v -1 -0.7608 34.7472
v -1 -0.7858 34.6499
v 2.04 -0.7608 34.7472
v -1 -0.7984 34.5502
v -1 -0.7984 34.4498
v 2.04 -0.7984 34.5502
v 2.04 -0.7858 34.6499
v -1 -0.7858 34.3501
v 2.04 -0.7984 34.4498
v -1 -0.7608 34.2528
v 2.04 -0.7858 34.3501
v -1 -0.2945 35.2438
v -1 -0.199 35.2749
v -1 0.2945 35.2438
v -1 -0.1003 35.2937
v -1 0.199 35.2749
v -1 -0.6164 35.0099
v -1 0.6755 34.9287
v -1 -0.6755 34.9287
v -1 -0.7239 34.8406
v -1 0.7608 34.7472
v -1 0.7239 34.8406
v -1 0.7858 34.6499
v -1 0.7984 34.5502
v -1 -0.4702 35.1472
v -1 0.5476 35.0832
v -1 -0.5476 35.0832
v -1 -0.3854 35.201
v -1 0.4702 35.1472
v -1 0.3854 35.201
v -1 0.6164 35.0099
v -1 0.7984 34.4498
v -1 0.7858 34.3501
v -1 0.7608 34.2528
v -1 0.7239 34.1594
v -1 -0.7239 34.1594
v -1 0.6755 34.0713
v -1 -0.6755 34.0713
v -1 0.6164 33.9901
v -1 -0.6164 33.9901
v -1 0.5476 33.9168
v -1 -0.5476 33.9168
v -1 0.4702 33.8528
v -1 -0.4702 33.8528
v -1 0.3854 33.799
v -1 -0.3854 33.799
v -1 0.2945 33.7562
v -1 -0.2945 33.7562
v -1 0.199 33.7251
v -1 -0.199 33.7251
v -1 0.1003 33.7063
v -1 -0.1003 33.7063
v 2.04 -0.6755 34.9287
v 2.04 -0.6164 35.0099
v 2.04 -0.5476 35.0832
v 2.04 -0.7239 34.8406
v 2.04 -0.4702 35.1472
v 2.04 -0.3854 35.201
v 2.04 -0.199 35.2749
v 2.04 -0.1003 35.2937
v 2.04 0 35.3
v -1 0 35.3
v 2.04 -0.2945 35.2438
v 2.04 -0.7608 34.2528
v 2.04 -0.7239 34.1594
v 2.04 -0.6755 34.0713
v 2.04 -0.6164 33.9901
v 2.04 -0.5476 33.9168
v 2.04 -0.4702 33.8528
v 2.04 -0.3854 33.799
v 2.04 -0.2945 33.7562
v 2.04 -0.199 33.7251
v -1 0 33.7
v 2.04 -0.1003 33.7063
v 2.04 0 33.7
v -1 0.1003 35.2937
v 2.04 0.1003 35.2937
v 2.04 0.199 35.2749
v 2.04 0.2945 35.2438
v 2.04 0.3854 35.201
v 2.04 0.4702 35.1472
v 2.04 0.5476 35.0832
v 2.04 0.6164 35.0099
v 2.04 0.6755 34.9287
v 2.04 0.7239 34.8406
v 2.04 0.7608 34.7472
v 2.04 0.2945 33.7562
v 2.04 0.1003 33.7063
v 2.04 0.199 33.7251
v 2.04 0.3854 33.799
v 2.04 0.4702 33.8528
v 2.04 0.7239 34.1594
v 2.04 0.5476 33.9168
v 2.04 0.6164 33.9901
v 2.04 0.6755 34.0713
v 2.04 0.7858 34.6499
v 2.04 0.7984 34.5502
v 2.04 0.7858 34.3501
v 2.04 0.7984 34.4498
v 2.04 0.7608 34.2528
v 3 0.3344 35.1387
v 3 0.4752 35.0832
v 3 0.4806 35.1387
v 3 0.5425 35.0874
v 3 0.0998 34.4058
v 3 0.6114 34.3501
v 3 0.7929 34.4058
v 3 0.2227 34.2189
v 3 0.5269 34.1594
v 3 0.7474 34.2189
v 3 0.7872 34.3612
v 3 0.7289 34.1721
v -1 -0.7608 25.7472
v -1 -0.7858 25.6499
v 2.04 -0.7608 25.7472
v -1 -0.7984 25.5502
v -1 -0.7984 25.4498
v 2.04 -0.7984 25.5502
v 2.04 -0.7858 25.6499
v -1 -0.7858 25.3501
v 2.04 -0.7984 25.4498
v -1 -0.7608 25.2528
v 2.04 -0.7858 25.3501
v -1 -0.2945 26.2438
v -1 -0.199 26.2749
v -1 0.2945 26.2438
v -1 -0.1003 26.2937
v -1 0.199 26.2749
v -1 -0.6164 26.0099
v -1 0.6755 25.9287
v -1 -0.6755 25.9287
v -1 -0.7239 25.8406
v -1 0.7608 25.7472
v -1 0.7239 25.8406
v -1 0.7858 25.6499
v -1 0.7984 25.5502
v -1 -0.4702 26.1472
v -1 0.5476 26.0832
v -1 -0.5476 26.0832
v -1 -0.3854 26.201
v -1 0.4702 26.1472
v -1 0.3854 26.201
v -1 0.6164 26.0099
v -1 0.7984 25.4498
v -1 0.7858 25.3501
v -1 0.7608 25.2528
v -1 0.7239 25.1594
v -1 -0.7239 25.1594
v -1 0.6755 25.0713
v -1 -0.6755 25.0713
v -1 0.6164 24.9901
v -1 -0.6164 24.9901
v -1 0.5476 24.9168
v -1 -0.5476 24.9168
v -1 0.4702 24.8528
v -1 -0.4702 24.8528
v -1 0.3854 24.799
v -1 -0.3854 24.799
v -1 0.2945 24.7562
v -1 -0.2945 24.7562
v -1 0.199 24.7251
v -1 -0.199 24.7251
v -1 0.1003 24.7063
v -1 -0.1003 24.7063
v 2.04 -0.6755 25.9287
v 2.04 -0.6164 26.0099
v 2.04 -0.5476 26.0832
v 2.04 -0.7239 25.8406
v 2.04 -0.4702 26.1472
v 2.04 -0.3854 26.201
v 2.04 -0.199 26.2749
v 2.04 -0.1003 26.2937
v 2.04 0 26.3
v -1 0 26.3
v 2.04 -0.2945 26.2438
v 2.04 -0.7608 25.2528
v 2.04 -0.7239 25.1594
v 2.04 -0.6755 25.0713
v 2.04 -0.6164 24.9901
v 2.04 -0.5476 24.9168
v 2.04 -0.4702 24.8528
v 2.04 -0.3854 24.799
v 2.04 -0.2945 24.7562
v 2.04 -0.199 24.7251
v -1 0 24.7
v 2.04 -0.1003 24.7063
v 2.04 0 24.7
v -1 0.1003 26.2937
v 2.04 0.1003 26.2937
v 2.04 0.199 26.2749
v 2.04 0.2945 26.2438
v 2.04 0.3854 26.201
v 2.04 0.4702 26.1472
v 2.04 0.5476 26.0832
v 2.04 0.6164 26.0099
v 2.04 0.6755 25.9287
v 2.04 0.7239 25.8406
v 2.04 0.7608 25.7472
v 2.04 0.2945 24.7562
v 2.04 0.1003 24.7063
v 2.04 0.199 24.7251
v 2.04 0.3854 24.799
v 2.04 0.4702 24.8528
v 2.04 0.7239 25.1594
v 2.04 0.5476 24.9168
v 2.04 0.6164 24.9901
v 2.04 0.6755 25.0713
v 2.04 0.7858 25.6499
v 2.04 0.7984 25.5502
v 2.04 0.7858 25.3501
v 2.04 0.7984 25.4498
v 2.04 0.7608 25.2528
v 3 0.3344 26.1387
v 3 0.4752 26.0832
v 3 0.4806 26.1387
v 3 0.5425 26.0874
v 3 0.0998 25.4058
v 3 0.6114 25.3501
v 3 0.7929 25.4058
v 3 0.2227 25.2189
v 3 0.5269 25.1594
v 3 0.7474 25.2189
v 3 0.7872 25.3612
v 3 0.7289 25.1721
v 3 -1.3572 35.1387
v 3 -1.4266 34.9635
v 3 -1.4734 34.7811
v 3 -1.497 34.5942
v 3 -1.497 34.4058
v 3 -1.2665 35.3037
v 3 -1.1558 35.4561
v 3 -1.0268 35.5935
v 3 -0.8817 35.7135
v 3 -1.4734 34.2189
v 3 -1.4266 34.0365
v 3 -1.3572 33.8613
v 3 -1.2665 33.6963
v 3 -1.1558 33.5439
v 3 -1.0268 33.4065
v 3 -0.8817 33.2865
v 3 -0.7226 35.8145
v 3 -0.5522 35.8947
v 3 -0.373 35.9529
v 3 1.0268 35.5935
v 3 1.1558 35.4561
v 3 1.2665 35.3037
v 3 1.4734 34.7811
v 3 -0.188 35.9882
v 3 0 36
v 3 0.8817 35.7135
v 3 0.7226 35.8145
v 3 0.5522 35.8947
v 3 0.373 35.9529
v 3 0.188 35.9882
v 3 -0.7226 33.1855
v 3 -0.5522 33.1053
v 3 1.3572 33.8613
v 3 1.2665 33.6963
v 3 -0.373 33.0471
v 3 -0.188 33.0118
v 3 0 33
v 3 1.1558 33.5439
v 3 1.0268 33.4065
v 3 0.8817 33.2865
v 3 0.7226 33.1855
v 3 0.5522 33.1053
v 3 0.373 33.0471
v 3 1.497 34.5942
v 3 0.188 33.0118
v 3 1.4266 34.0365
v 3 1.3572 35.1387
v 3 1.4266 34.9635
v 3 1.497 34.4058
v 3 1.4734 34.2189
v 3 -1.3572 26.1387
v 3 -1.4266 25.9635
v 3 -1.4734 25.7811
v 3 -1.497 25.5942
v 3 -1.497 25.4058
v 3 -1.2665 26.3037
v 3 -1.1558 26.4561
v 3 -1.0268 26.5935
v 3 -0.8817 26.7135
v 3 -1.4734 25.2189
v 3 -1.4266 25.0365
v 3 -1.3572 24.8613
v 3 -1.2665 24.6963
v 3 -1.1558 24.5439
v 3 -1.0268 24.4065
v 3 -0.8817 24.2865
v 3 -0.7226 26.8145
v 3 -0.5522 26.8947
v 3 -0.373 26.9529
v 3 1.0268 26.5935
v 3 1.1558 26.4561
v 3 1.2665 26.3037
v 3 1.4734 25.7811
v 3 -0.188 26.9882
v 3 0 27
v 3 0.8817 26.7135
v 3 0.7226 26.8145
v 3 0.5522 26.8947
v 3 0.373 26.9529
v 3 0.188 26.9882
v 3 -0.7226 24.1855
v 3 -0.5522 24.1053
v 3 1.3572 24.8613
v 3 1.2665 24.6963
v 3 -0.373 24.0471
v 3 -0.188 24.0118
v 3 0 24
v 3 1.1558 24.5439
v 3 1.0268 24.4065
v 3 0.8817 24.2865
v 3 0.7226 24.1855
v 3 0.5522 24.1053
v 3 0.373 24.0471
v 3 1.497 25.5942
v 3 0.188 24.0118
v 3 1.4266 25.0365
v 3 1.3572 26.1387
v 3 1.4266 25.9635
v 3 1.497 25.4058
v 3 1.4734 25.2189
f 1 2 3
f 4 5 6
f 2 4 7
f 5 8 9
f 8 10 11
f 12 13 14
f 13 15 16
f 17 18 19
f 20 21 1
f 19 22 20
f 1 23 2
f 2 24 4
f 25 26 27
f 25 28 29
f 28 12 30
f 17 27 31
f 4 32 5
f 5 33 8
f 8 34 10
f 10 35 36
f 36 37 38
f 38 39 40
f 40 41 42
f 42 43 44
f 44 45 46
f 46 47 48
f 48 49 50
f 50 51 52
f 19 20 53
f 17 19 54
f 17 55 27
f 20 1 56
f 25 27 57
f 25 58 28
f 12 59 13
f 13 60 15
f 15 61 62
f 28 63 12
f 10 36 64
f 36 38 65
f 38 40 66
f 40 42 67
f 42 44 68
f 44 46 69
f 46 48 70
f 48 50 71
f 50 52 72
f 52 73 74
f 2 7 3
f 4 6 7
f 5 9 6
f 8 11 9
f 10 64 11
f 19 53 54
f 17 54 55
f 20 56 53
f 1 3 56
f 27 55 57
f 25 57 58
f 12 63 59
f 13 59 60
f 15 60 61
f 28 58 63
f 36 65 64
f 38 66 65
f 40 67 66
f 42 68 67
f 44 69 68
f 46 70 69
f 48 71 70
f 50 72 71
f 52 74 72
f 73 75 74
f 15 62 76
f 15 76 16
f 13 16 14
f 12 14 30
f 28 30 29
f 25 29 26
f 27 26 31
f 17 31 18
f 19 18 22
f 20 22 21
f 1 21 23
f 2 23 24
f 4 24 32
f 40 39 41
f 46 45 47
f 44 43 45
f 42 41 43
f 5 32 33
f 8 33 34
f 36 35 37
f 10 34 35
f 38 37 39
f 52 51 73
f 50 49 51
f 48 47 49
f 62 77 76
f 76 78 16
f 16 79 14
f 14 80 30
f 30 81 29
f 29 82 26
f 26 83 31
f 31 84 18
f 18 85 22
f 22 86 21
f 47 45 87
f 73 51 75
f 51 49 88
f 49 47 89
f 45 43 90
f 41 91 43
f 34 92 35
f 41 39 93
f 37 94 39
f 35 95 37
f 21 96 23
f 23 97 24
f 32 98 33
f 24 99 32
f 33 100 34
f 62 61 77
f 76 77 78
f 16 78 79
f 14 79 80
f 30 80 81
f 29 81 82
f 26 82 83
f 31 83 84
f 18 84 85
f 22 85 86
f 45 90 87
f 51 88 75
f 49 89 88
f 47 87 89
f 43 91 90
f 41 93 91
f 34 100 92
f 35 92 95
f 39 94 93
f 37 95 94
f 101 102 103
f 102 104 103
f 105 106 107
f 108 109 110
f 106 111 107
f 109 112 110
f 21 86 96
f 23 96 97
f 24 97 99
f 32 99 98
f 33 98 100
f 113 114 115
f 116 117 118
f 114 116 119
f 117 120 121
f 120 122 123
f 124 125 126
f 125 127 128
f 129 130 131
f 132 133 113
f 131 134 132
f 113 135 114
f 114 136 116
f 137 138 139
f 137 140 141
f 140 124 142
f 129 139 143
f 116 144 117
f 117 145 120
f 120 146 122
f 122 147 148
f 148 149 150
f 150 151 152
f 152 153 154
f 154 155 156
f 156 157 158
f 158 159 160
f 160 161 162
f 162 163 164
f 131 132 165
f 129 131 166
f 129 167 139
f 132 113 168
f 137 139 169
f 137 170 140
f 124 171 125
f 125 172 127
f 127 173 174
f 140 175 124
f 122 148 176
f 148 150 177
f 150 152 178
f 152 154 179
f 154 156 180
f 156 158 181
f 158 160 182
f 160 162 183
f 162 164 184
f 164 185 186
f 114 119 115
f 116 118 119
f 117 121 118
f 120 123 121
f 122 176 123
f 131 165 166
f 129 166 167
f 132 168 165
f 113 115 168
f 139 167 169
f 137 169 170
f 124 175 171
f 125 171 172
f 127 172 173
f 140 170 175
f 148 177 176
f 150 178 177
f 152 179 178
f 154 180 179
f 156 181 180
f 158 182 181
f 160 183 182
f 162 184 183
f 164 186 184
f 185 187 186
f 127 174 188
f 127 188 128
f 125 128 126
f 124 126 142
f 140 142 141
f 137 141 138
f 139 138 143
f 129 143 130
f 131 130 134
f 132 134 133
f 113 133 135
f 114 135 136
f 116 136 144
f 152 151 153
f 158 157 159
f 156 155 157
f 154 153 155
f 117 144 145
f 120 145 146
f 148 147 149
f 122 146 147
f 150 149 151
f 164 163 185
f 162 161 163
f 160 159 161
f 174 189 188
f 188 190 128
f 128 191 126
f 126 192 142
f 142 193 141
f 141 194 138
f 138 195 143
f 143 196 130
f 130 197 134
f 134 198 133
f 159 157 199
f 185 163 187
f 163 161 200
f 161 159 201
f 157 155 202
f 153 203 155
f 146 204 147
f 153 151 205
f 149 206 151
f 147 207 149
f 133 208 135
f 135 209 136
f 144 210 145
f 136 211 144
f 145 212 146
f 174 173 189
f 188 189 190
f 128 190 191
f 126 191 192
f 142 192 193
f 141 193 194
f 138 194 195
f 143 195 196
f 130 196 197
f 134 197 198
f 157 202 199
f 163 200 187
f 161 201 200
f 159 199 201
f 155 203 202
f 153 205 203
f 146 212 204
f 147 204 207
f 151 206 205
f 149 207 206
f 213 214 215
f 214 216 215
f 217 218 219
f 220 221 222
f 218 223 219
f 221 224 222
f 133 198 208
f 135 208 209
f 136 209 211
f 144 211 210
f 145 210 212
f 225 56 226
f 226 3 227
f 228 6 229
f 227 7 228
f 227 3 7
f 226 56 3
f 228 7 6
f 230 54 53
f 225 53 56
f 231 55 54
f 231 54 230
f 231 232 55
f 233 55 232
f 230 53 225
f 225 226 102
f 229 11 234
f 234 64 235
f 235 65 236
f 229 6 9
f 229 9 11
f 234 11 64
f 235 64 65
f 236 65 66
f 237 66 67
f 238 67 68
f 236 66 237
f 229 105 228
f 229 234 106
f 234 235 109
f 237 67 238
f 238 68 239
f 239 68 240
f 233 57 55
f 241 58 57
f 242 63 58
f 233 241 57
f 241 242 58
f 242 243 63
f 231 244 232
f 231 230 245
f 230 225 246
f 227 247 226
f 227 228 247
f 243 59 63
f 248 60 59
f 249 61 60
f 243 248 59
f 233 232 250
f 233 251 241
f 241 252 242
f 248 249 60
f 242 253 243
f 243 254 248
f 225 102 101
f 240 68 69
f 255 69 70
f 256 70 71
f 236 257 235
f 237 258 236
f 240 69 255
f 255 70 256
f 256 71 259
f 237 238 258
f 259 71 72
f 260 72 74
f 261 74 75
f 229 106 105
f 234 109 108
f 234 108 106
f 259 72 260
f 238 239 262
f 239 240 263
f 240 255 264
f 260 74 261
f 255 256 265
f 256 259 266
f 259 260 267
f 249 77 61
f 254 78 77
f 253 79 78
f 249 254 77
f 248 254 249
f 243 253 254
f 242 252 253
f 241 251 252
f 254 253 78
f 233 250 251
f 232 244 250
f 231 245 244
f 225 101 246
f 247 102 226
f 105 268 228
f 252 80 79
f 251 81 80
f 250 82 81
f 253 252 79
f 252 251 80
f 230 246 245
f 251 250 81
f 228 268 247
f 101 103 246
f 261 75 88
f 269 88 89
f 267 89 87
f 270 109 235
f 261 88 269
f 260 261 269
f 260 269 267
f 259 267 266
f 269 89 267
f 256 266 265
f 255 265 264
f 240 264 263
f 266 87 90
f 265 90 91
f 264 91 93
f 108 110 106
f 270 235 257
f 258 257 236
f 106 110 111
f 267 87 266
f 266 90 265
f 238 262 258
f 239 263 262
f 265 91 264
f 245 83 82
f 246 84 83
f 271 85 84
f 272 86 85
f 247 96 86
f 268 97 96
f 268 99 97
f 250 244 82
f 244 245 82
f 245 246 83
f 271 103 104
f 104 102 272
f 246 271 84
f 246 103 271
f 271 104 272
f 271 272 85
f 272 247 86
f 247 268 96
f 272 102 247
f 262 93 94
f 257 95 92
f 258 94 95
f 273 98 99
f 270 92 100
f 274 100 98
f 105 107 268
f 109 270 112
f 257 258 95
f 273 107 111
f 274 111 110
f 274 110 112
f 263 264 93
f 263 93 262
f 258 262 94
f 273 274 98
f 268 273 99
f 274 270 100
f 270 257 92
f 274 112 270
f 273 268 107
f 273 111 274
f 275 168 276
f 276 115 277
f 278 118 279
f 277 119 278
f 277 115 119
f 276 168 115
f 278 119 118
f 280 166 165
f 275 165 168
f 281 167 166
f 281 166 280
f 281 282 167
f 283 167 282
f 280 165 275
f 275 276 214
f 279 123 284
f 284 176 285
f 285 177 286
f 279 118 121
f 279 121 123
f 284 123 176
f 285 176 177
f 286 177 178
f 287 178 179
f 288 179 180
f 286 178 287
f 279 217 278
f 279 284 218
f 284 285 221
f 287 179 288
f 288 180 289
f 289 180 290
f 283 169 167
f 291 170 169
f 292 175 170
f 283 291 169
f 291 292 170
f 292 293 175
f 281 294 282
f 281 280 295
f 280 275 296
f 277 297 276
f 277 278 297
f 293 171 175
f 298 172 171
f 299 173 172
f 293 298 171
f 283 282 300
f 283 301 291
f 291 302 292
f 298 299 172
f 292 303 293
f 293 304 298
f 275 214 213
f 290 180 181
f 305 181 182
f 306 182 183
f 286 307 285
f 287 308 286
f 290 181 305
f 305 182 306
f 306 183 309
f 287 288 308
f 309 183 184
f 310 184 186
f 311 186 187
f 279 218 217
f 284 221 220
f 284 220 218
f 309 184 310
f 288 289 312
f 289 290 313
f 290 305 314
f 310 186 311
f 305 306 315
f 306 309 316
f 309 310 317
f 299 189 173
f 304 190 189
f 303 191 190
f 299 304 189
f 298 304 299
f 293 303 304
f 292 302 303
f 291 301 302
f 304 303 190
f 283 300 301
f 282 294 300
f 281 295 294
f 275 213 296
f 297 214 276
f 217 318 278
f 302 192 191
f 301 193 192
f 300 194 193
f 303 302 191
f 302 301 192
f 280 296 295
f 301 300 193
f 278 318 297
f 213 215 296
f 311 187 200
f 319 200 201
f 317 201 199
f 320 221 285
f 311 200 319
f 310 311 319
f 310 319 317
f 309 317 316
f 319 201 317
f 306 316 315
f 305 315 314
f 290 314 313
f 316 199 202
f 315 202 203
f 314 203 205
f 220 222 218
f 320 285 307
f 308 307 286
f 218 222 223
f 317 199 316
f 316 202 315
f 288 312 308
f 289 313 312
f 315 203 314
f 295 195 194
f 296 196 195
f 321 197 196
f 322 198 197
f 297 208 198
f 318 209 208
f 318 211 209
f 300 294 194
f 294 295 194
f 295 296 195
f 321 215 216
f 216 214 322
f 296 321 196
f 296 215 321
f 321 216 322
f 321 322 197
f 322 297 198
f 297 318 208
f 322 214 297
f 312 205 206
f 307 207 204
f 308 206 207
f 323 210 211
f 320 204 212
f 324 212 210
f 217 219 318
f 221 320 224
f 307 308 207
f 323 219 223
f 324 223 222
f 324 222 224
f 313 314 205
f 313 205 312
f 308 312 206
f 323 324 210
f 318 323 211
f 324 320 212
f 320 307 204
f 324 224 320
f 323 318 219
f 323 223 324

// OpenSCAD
$fn = 50;

difference() {
	union() {
		translate(v = [0, 0, 30]) {
			rotate(a = [0, 90, 0]) {
				difference() {
					union() {
						translate(v = [-4.5, 0, 3]) {
							rotate(a = [0, 0, 0]) {
								difference() {
									union() {
										translate(v = [0, 0, -4.0]) {
											cylinder(h = 4, r = 0.8);
										}
										translate(v = [0, 0, -0.96]) {
											cylinder(h = 0.96, r1 = 0.8, r2 = 1.5);
										}
									}
									union();
								}
							}
						}
						translate(v = [4.5, 0, 3]) {
							rotate(a = [0, 0, 0]) {
								difference() {
									union() {
										translate(v = [0, 0, -4.0]) {
											cylinder(h = 4, r = 0.8);
										}
										translate(v = [0, 0, -0.96]) {
											cylinder(h = 0.96, r1 = 0.8, r2 = 1.5);
										}
									}
									union();
								}
							}
						}
					}
					union();
				}
			}
		}
	}
	union();
}
